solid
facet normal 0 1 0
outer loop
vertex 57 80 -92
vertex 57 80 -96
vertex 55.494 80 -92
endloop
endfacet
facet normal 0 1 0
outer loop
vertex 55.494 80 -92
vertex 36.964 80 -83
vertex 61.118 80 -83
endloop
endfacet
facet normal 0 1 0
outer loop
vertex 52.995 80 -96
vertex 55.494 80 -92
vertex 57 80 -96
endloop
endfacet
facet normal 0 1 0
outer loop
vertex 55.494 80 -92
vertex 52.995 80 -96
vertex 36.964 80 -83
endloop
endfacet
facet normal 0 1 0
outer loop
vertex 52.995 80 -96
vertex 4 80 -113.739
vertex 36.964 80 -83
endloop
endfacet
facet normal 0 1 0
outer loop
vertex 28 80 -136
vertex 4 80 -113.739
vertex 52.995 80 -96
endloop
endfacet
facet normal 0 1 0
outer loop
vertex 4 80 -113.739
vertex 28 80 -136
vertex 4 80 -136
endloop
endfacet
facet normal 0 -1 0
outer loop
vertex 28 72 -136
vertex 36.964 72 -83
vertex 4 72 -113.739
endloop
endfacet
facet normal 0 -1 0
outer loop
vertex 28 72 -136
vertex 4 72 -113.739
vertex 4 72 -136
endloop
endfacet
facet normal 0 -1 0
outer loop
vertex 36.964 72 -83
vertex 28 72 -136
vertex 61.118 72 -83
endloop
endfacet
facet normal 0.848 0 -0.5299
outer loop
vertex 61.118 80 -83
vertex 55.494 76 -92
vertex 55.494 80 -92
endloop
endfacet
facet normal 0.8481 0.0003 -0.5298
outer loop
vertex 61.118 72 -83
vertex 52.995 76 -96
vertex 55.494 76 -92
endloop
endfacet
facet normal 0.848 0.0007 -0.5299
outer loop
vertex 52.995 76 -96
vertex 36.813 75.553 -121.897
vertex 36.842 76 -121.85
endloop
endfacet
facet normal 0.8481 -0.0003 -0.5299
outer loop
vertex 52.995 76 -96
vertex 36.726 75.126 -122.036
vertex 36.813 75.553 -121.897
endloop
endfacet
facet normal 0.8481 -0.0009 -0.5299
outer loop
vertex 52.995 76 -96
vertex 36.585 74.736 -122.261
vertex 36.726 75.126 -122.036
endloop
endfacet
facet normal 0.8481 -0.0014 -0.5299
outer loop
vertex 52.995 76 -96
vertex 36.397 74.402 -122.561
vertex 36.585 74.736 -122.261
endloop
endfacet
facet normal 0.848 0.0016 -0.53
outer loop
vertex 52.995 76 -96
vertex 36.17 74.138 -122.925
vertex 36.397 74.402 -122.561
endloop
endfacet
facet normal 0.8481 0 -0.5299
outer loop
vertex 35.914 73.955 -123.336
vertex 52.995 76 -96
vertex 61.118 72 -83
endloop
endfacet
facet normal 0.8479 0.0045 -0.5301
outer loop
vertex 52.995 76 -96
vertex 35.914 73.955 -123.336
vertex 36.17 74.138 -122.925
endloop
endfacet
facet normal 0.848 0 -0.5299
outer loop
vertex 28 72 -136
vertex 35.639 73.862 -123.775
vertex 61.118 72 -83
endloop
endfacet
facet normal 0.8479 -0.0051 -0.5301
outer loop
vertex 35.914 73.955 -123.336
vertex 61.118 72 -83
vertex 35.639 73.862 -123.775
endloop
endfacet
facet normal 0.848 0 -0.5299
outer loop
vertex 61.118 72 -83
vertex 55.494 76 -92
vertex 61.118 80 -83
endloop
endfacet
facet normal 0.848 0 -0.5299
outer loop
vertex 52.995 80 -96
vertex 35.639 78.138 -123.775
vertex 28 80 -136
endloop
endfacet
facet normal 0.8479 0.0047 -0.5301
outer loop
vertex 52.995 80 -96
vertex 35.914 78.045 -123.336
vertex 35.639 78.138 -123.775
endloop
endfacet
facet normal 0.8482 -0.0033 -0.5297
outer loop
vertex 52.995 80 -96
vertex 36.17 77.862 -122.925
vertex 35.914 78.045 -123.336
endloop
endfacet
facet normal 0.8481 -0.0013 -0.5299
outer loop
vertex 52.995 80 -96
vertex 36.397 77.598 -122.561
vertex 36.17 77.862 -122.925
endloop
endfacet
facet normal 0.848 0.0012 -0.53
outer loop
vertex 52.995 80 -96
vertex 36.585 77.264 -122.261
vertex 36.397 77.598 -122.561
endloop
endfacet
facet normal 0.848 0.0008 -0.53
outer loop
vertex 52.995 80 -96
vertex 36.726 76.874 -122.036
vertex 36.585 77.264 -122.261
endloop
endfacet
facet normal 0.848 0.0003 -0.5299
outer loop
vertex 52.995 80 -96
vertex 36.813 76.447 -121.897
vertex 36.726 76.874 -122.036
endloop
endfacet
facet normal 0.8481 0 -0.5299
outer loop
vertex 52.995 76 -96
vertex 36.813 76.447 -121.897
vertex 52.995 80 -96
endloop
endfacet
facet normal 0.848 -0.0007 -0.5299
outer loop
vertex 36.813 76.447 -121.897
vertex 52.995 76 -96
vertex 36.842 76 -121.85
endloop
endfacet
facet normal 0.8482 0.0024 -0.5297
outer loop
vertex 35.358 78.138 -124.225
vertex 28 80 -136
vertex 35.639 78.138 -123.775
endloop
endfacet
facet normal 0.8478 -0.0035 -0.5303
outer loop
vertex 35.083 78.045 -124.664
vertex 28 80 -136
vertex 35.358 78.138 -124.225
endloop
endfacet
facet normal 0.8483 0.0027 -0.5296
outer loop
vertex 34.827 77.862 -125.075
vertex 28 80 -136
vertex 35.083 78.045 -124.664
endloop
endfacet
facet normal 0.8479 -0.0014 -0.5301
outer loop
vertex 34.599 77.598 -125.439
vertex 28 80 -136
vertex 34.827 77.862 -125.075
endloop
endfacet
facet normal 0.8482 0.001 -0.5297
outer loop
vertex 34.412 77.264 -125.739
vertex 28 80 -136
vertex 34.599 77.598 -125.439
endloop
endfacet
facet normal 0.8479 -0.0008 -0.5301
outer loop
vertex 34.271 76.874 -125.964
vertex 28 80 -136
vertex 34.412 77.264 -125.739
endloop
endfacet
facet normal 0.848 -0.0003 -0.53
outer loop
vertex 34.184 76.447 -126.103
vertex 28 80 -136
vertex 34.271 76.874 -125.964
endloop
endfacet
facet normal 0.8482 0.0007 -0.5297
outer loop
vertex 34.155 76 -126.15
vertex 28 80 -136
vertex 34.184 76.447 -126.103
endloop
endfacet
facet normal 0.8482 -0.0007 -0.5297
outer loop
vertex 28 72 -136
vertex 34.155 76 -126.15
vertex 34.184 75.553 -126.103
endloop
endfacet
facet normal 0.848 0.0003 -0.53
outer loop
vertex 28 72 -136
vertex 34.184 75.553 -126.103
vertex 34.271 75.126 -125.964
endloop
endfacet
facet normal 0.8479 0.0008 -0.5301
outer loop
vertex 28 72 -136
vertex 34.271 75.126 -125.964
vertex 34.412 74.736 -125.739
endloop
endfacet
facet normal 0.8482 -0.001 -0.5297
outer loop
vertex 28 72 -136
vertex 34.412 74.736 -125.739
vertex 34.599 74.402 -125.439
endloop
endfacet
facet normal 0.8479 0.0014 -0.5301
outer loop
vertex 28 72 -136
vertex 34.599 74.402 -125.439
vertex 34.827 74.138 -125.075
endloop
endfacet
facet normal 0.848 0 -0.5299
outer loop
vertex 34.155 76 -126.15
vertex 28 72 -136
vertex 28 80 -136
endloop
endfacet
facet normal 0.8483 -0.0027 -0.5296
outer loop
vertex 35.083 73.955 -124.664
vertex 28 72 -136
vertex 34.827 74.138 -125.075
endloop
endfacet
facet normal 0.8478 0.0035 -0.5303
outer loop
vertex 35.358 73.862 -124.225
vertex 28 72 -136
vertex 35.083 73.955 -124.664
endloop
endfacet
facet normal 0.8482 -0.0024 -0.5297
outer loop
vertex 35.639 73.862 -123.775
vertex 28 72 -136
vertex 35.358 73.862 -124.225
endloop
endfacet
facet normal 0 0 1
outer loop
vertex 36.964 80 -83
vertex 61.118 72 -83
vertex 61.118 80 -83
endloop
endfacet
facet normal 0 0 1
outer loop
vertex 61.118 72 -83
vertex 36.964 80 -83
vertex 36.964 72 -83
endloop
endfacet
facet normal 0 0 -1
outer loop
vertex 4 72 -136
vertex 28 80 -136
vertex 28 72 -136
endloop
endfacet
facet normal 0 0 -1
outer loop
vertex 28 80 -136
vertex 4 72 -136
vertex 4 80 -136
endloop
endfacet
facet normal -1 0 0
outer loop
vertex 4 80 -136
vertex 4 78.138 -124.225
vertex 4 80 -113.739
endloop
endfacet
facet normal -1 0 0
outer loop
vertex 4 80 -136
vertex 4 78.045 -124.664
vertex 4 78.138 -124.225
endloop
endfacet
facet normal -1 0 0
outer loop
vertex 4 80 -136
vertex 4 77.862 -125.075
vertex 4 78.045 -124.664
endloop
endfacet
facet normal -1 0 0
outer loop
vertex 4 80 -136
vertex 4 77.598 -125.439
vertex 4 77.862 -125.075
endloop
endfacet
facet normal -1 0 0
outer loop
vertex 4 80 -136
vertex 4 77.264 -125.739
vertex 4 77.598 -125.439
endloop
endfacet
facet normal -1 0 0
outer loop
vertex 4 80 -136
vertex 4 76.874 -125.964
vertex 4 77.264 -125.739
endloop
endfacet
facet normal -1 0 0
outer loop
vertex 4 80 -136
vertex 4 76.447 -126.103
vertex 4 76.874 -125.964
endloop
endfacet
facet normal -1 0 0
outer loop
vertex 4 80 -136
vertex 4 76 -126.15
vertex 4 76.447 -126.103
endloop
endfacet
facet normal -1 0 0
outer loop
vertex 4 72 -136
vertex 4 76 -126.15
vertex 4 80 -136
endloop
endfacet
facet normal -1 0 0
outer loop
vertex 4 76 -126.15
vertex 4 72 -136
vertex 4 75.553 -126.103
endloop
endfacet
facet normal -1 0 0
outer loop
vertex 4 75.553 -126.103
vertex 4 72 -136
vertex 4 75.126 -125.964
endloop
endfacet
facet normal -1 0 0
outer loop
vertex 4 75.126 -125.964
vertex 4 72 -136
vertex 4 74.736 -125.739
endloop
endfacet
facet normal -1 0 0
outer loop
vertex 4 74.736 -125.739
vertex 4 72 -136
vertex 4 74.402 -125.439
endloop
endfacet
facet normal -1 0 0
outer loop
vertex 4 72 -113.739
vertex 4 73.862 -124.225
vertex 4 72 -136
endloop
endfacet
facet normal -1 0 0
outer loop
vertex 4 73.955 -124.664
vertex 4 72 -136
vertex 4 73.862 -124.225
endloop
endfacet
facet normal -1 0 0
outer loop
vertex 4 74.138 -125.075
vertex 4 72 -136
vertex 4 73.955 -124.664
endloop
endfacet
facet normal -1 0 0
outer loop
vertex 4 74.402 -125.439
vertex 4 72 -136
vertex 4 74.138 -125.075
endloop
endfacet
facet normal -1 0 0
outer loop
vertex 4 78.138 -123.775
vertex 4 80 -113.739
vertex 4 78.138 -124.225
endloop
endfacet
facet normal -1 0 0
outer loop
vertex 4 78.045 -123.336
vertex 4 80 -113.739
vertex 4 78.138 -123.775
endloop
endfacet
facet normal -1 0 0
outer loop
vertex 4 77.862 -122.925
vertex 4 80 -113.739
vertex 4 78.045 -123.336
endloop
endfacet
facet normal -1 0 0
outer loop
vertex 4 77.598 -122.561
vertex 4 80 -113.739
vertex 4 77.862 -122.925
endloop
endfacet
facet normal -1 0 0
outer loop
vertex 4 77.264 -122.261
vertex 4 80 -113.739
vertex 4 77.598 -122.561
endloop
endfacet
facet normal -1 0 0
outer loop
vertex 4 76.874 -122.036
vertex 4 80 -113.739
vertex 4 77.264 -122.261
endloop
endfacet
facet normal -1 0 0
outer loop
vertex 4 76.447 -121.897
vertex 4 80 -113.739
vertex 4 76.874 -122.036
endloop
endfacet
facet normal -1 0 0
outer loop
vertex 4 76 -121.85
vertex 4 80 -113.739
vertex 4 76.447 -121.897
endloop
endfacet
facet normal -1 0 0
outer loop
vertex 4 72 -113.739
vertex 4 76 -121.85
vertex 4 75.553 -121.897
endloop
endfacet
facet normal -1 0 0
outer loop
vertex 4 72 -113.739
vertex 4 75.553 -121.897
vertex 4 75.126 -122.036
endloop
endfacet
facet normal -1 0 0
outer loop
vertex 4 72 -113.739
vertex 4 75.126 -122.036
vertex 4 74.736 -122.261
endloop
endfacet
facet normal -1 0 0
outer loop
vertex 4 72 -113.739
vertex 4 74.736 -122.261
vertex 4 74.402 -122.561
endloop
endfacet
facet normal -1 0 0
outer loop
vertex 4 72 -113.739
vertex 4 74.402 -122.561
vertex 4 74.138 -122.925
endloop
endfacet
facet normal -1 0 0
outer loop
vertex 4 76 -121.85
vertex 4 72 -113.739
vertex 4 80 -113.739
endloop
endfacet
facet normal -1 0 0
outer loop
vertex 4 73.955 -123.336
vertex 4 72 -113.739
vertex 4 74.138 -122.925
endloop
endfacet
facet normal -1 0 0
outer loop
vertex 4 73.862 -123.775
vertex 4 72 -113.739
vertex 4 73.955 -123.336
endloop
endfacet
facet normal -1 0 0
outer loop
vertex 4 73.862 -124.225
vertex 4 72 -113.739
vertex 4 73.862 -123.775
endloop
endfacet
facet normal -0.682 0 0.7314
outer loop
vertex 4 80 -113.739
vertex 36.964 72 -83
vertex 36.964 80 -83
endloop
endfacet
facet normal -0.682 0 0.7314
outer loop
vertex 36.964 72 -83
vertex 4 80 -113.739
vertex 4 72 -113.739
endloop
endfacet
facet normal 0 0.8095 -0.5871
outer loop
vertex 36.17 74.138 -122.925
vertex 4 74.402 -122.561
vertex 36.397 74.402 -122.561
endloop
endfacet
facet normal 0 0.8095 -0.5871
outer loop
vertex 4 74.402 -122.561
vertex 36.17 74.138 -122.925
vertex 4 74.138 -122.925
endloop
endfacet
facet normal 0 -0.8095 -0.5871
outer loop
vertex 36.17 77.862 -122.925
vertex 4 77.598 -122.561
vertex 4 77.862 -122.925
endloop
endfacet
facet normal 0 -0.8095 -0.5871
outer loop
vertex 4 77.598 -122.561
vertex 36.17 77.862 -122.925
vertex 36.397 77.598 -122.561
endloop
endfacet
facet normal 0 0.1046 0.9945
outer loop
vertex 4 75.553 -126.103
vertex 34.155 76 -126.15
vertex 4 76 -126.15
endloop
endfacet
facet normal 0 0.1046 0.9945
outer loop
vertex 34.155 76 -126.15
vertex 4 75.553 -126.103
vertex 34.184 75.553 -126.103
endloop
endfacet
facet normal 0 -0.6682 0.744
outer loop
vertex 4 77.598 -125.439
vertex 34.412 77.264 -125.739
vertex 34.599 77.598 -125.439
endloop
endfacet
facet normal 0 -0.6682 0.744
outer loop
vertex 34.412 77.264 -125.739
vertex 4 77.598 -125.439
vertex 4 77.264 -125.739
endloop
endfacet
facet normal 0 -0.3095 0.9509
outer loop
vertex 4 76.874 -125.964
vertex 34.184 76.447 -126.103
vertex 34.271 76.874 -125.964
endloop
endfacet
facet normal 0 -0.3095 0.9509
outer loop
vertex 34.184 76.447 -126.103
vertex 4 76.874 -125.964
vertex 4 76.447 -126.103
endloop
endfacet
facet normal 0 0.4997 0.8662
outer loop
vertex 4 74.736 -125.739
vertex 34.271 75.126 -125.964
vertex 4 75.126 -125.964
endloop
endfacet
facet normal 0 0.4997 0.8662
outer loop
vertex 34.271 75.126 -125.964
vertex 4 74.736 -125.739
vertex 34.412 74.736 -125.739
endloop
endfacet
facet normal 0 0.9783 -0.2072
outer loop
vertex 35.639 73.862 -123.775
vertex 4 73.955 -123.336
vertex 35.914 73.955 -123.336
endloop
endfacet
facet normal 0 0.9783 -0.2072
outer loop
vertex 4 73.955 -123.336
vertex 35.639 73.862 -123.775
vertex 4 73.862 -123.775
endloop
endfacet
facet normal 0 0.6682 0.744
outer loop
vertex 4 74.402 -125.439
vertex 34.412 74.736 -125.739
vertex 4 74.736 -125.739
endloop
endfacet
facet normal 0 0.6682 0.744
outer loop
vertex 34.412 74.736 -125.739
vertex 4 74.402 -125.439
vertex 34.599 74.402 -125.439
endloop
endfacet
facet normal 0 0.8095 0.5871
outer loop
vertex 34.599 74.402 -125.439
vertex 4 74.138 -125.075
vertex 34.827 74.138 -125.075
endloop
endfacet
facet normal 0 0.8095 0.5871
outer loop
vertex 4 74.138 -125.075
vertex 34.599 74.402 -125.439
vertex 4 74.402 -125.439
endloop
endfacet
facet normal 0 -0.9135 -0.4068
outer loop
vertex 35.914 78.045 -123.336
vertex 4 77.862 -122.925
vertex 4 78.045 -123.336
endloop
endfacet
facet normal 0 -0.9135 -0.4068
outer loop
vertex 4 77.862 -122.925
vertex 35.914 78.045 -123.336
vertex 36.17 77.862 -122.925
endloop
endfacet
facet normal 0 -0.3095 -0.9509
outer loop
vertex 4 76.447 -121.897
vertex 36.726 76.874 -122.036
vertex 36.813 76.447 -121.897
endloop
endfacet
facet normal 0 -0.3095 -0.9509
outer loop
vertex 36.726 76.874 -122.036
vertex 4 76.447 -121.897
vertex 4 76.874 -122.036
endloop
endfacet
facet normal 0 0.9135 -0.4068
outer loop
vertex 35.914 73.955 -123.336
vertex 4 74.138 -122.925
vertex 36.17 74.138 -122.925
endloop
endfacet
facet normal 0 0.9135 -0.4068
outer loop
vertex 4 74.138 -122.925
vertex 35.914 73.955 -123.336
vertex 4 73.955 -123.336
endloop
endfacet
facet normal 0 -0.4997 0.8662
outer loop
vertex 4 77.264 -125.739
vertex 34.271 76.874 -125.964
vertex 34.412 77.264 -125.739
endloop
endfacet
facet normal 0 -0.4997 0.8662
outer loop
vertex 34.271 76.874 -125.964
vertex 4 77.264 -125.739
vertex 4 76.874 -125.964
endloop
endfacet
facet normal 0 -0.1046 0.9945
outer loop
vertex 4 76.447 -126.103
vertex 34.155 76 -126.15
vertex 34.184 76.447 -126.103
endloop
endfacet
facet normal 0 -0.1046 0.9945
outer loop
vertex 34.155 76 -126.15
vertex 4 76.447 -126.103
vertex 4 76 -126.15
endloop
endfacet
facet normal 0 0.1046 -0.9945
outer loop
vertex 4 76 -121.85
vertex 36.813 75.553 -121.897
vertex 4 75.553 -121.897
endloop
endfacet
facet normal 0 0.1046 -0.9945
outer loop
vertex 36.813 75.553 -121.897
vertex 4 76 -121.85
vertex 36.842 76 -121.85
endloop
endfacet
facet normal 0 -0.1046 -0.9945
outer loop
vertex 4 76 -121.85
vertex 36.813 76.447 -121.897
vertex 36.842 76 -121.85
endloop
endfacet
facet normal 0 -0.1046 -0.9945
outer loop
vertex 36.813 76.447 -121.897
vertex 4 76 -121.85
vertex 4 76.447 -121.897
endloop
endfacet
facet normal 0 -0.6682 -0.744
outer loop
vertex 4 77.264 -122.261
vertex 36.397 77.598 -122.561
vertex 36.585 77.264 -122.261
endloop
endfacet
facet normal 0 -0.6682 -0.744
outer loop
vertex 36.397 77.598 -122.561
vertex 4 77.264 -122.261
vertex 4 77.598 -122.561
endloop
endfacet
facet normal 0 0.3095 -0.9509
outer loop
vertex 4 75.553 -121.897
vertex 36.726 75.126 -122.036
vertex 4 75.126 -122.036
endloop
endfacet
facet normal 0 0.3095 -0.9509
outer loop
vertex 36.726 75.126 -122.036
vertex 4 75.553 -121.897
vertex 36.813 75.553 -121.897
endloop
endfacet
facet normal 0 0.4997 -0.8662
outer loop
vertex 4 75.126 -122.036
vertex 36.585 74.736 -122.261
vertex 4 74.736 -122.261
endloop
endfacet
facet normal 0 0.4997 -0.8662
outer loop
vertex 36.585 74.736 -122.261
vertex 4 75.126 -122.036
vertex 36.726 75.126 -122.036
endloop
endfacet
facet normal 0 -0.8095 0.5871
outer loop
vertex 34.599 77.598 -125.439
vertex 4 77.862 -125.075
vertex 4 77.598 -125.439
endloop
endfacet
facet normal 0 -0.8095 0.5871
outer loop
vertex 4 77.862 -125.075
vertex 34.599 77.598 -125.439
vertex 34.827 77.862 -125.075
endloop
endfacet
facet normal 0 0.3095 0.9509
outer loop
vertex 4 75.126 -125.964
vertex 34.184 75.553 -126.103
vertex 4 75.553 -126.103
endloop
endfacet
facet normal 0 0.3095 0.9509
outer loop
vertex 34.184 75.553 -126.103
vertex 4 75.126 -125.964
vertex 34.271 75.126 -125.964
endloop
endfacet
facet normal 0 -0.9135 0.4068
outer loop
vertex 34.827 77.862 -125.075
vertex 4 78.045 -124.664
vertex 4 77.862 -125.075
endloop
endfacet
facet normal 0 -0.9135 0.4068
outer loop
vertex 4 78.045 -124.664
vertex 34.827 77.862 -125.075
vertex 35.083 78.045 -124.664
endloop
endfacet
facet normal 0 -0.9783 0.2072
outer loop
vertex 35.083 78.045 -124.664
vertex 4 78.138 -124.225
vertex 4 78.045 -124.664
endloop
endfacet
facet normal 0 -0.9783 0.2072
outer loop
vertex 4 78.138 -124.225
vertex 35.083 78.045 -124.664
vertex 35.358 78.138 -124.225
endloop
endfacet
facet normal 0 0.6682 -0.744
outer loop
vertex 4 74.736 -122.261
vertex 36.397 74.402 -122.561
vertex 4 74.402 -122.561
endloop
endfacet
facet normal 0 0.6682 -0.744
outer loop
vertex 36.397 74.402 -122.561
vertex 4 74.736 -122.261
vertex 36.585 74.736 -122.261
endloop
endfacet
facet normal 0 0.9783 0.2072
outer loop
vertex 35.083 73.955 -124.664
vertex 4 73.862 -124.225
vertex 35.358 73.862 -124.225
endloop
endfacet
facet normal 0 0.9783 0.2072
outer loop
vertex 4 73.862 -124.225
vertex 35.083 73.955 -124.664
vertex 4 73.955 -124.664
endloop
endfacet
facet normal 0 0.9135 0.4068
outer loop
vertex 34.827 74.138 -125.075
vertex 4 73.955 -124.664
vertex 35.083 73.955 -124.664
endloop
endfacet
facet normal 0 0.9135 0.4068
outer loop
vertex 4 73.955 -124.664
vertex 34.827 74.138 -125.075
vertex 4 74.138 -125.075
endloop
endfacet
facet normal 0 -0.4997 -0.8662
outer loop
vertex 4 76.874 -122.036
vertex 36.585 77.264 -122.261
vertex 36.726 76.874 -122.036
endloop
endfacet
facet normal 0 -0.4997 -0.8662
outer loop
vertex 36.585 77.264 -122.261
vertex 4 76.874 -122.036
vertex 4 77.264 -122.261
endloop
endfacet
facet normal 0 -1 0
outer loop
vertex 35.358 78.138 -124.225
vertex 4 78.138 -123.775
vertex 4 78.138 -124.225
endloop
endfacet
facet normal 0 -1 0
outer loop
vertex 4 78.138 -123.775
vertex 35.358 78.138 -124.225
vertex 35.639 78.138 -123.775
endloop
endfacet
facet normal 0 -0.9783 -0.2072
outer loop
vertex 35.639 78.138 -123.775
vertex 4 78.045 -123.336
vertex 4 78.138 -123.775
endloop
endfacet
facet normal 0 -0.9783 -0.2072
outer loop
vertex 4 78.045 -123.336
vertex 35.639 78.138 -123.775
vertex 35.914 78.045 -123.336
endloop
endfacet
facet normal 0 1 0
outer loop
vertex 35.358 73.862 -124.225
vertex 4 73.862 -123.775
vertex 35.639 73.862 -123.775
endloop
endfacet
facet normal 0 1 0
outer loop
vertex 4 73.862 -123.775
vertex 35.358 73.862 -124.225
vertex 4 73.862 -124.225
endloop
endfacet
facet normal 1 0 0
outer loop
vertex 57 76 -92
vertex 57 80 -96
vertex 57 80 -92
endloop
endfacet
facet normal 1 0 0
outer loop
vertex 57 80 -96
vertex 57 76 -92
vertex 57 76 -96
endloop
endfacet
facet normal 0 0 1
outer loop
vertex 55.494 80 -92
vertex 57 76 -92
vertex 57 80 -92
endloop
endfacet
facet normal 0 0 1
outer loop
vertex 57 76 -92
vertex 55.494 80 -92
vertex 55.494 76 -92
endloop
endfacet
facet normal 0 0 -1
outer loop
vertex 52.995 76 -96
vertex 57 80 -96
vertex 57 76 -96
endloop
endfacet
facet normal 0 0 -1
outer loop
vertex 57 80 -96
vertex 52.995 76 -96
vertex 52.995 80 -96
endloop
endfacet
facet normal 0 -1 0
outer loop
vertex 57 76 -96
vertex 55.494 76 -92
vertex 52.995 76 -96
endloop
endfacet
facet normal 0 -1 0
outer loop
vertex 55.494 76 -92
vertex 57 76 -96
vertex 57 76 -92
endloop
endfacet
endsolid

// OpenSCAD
// left part of bottom guard rail
union(){
difference(){
union(){    
    // left wall
    translate([-10,72,-135])
    rotate([0,32,0])
    cube([35,8,85]);
}
    // clean up for front part of guard rail
    translate([28,72,-136])
    rotate([0,32,0])
    cube([5,40,80]);

    // top clean up
    translate([10,60,-83])
    cube([65,60,30]);

    // bottom clean up
    translate([0,60,-160])
    cube([40,60,24]);
    
    // clean up on bracket side
    // bottom
    translate([-30,60,-150])
    cube([34,60,50]);
    
    // top at an angle
    translate([-40,71,-112])
    rotate([0,47,0])
    cube([31.28,42,87]);
    
    // left clean up
    translate([0,66,-160])
    cube([66,6,100]);
    
    // hole for screw
    translate([-4,76,-124])
    rotate([0,90,0])
    cylinder(r=2.15,60, $fn=30);
}
    // notch to secure left piece
    translate([52,76,-96])
    cube([5,4,4]);
}
